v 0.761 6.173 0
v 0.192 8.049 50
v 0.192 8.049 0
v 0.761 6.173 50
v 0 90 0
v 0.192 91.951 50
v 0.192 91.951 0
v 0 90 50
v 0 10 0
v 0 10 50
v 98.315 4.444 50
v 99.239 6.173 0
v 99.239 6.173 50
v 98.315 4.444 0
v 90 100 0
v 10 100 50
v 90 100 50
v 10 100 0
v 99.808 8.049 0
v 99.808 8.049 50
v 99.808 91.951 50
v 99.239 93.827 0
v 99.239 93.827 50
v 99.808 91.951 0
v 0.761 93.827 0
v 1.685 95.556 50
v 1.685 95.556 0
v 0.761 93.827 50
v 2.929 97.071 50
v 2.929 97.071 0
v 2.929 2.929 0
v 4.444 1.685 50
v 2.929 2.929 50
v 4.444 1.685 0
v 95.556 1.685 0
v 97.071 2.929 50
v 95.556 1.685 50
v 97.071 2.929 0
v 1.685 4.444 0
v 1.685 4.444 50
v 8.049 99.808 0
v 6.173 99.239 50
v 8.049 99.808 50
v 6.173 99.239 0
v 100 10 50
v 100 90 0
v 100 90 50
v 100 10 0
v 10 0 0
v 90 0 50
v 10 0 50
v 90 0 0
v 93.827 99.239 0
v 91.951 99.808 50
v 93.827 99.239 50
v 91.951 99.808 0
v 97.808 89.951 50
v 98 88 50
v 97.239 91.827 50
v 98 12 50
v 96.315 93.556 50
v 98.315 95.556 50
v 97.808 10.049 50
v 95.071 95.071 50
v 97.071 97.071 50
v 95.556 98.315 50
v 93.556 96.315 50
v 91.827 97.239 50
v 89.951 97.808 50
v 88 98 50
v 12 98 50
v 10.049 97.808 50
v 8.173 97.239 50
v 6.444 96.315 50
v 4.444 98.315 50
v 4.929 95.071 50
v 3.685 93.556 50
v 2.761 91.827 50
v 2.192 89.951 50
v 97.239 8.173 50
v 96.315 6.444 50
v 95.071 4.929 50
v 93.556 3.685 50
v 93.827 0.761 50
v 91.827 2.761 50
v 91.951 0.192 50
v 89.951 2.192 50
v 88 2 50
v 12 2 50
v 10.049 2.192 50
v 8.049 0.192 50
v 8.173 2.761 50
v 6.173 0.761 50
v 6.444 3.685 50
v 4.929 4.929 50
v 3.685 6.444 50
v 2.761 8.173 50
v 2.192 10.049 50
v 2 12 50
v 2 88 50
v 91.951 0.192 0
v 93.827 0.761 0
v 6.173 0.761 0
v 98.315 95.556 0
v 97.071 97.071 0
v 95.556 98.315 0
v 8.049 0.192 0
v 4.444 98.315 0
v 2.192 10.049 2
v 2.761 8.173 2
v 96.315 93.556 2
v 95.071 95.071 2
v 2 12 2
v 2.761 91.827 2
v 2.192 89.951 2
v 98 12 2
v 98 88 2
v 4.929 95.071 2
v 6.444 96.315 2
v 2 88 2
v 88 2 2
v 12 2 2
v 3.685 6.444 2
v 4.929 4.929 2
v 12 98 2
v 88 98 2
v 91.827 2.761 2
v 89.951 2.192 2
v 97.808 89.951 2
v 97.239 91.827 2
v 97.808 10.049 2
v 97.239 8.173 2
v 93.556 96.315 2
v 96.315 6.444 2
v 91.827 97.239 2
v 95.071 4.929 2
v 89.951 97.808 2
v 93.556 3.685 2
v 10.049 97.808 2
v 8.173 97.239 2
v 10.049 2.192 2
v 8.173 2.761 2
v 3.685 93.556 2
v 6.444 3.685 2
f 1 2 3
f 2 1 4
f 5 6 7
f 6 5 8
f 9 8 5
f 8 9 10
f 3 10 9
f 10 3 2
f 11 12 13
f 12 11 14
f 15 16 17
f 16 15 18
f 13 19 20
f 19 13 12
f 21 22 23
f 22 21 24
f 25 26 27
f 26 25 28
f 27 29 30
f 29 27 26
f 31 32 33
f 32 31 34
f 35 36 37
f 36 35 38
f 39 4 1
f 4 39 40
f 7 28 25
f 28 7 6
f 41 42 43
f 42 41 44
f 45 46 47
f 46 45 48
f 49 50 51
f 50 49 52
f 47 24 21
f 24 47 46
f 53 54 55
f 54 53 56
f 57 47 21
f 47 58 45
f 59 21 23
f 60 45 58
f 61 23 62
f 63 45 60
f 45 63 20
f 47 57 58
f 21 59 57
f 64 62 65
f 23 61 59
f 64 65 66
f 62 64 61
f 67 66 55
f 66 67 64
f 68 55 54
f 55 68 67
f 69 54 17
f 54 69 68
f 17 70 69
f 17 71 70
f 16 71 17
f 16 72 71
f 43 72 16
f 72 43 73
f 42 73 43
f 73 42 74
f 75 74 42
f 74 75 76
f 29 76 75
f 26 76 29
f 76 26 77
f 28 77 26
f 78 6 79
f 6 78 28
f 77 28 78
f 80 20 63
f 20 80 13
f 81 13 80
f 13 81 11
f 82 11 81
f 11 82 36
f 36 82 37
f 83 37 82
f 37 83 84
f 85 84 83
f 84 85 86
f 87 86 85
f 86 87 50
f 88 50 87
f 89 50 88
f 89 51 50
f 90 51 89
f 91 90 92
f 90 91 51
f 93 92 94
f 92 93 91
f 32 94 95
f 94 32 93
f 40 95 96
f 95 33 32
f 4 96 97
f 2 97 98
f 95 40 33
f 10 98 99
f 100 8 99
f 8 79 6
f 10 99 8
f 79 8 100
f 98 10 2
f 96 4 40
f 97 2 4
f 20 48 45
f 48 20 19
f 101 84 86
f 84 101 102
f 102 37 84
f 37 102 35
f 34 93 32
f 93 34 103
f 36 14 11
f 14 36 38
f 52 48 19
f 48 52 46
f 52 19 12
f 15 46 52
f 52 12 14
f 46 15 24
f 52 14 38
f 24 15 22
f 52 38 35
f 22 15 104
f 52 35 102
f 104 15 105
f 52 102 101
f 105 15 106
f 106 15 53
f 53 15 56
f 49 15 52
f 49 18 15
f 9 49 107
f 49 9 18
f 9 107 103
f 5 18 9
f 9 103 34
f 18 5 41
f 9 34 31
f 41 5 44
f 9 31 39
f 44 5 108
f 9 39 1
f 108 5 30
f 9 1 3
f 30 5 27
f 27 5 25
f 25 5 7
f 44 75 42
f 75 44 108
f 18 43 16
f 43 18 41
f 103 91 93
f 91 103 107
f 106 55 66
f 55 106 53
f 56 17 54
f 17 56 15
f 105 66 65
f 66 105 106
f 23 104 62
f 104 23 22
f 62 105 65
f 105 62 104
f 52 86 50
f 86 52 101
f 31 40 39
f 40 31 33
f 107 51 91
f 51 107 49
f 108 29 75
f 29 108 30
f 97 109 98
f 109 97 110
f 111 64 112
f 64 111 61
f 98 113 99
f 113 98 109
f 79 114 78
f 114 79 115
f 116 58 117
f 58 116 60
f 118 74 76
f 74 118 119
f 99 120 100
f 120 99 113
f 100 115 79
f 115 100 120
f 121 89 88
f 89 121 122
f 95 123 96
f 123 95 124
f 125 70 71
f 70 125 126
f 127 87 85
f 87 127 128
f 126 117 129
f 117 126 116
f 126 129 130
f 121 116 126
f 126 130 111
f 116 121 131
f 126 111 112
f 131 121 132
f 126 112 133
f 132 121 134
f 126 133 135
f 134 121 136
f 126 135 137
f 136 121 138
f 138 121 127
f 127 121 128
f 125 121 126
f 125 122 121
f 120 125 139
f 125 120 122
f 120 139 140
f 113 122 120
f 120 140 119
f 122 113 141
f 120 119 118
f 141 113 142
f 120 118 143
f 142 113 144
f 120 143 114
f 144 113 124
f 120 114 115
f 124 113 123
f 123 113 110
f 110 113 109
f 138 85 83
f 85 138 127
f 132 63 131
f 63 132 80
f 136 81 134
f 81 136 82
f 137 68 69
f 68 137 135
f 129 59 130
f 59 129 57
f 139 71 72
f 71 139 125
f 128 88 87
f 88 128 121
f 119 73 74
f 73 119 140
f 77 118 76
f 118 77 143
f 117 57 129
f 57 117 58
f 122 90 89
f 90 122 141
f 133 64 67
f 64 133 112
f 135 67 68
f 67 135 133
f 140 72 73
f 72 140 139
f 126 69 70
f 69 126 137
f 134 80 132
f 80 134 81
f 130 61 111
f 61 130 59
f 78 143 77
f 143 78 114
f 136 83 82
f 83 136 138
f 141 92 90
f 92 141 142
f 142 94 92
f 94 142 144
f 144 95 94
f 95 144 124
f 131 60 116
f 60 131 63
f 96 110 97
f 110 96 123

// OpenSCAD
// bin_with_rounded_corners.scad
// A parametric square bin with rounded corners on both inside and outside.
// Author: Generated by LLM
// Date: 2024-06-20

// Exposed parameters:
//   outer_width       - total outer width of the bin (mm)
//   outer_depth       - total outer depth of the bin (mm)
//   height            - total height of the bin (mm)
//   wall_thickness    - thickness of the walls (mm)
//   corner_radius     - radius of the rounded corners (mm)
//   floor_thickness   - thickness of the floor (mm)
//   convexity         - convexity parameter for preview rendering [1]

outer_width = 100;
outer_depth = 100;
height = 50;
wall_thickness = 2;
corner_radius = 10;
floor_thickness = 2;
convexity = 10;       // Safe default for preview [1]

// Derived dimensions
inner_width = outer_width - 2 * wall_thickness;
inner_depth = outer_depth - 2 * wall_thickness;
inner_height = height - floor_thickness;

module SanityCheck() {
    assert(outer_width > 0, "outer_width must be positive");
    assert(outer_depth > 0, "outer_depth must be positive");
    assert(height > 0, "height must be positive");
    assert(wall_thickness > 0, "wall_thickness must be positive");
    assert(corner_radius > 0, "corner_radius must be positive");
    assert(floor_thickness > 0, "floor_thickness must be positive");
    assert(corner_radius < min(outer_width, outer_depth) / 2,
           "corner_radius too large for outer dimensions");
    assert(corner_radius < min(inner_width, inner_depth) / 2,
           "corner_radius too large for inner dimensions");
    assert(wall_thickness < min(outer_width, outer_depth) / 2,
           "wall_thickness too large for outer dimensions");
}

module RoundedSquare(width, depth, radius, center = false) {
    // Create a 2D rounded square with given dimensions and corner radius
    translate(center ? [-width/2, -depth/2] : [0, 0])
        hull() {
            for (x = [0, 1], y = [0, 1])
                translate([x ? width - radius : radius,
                           y ? depth - radius : radius])
                    circle(r = radius, $fn = 32);
        }
}

module Bin() {
    difference() {
        // Outer shell with rounded corners
        linear_extrude(height = height, convexity = convexity)
            RoundedSquare(outer_width, outer_depth, corner_radius);

        // Inner cavity with rounded corners
        translate([wall_thickness, wall_thickness, floor_thickness])
            linear_extrude(height = inner_height + 1, convexity = convexity)
                RoundedSquare(inner_width, inner_depth, corner_radius);
    }
}

///--- Preview ----------------------------------------------------
SanityCheck();
Bin();
